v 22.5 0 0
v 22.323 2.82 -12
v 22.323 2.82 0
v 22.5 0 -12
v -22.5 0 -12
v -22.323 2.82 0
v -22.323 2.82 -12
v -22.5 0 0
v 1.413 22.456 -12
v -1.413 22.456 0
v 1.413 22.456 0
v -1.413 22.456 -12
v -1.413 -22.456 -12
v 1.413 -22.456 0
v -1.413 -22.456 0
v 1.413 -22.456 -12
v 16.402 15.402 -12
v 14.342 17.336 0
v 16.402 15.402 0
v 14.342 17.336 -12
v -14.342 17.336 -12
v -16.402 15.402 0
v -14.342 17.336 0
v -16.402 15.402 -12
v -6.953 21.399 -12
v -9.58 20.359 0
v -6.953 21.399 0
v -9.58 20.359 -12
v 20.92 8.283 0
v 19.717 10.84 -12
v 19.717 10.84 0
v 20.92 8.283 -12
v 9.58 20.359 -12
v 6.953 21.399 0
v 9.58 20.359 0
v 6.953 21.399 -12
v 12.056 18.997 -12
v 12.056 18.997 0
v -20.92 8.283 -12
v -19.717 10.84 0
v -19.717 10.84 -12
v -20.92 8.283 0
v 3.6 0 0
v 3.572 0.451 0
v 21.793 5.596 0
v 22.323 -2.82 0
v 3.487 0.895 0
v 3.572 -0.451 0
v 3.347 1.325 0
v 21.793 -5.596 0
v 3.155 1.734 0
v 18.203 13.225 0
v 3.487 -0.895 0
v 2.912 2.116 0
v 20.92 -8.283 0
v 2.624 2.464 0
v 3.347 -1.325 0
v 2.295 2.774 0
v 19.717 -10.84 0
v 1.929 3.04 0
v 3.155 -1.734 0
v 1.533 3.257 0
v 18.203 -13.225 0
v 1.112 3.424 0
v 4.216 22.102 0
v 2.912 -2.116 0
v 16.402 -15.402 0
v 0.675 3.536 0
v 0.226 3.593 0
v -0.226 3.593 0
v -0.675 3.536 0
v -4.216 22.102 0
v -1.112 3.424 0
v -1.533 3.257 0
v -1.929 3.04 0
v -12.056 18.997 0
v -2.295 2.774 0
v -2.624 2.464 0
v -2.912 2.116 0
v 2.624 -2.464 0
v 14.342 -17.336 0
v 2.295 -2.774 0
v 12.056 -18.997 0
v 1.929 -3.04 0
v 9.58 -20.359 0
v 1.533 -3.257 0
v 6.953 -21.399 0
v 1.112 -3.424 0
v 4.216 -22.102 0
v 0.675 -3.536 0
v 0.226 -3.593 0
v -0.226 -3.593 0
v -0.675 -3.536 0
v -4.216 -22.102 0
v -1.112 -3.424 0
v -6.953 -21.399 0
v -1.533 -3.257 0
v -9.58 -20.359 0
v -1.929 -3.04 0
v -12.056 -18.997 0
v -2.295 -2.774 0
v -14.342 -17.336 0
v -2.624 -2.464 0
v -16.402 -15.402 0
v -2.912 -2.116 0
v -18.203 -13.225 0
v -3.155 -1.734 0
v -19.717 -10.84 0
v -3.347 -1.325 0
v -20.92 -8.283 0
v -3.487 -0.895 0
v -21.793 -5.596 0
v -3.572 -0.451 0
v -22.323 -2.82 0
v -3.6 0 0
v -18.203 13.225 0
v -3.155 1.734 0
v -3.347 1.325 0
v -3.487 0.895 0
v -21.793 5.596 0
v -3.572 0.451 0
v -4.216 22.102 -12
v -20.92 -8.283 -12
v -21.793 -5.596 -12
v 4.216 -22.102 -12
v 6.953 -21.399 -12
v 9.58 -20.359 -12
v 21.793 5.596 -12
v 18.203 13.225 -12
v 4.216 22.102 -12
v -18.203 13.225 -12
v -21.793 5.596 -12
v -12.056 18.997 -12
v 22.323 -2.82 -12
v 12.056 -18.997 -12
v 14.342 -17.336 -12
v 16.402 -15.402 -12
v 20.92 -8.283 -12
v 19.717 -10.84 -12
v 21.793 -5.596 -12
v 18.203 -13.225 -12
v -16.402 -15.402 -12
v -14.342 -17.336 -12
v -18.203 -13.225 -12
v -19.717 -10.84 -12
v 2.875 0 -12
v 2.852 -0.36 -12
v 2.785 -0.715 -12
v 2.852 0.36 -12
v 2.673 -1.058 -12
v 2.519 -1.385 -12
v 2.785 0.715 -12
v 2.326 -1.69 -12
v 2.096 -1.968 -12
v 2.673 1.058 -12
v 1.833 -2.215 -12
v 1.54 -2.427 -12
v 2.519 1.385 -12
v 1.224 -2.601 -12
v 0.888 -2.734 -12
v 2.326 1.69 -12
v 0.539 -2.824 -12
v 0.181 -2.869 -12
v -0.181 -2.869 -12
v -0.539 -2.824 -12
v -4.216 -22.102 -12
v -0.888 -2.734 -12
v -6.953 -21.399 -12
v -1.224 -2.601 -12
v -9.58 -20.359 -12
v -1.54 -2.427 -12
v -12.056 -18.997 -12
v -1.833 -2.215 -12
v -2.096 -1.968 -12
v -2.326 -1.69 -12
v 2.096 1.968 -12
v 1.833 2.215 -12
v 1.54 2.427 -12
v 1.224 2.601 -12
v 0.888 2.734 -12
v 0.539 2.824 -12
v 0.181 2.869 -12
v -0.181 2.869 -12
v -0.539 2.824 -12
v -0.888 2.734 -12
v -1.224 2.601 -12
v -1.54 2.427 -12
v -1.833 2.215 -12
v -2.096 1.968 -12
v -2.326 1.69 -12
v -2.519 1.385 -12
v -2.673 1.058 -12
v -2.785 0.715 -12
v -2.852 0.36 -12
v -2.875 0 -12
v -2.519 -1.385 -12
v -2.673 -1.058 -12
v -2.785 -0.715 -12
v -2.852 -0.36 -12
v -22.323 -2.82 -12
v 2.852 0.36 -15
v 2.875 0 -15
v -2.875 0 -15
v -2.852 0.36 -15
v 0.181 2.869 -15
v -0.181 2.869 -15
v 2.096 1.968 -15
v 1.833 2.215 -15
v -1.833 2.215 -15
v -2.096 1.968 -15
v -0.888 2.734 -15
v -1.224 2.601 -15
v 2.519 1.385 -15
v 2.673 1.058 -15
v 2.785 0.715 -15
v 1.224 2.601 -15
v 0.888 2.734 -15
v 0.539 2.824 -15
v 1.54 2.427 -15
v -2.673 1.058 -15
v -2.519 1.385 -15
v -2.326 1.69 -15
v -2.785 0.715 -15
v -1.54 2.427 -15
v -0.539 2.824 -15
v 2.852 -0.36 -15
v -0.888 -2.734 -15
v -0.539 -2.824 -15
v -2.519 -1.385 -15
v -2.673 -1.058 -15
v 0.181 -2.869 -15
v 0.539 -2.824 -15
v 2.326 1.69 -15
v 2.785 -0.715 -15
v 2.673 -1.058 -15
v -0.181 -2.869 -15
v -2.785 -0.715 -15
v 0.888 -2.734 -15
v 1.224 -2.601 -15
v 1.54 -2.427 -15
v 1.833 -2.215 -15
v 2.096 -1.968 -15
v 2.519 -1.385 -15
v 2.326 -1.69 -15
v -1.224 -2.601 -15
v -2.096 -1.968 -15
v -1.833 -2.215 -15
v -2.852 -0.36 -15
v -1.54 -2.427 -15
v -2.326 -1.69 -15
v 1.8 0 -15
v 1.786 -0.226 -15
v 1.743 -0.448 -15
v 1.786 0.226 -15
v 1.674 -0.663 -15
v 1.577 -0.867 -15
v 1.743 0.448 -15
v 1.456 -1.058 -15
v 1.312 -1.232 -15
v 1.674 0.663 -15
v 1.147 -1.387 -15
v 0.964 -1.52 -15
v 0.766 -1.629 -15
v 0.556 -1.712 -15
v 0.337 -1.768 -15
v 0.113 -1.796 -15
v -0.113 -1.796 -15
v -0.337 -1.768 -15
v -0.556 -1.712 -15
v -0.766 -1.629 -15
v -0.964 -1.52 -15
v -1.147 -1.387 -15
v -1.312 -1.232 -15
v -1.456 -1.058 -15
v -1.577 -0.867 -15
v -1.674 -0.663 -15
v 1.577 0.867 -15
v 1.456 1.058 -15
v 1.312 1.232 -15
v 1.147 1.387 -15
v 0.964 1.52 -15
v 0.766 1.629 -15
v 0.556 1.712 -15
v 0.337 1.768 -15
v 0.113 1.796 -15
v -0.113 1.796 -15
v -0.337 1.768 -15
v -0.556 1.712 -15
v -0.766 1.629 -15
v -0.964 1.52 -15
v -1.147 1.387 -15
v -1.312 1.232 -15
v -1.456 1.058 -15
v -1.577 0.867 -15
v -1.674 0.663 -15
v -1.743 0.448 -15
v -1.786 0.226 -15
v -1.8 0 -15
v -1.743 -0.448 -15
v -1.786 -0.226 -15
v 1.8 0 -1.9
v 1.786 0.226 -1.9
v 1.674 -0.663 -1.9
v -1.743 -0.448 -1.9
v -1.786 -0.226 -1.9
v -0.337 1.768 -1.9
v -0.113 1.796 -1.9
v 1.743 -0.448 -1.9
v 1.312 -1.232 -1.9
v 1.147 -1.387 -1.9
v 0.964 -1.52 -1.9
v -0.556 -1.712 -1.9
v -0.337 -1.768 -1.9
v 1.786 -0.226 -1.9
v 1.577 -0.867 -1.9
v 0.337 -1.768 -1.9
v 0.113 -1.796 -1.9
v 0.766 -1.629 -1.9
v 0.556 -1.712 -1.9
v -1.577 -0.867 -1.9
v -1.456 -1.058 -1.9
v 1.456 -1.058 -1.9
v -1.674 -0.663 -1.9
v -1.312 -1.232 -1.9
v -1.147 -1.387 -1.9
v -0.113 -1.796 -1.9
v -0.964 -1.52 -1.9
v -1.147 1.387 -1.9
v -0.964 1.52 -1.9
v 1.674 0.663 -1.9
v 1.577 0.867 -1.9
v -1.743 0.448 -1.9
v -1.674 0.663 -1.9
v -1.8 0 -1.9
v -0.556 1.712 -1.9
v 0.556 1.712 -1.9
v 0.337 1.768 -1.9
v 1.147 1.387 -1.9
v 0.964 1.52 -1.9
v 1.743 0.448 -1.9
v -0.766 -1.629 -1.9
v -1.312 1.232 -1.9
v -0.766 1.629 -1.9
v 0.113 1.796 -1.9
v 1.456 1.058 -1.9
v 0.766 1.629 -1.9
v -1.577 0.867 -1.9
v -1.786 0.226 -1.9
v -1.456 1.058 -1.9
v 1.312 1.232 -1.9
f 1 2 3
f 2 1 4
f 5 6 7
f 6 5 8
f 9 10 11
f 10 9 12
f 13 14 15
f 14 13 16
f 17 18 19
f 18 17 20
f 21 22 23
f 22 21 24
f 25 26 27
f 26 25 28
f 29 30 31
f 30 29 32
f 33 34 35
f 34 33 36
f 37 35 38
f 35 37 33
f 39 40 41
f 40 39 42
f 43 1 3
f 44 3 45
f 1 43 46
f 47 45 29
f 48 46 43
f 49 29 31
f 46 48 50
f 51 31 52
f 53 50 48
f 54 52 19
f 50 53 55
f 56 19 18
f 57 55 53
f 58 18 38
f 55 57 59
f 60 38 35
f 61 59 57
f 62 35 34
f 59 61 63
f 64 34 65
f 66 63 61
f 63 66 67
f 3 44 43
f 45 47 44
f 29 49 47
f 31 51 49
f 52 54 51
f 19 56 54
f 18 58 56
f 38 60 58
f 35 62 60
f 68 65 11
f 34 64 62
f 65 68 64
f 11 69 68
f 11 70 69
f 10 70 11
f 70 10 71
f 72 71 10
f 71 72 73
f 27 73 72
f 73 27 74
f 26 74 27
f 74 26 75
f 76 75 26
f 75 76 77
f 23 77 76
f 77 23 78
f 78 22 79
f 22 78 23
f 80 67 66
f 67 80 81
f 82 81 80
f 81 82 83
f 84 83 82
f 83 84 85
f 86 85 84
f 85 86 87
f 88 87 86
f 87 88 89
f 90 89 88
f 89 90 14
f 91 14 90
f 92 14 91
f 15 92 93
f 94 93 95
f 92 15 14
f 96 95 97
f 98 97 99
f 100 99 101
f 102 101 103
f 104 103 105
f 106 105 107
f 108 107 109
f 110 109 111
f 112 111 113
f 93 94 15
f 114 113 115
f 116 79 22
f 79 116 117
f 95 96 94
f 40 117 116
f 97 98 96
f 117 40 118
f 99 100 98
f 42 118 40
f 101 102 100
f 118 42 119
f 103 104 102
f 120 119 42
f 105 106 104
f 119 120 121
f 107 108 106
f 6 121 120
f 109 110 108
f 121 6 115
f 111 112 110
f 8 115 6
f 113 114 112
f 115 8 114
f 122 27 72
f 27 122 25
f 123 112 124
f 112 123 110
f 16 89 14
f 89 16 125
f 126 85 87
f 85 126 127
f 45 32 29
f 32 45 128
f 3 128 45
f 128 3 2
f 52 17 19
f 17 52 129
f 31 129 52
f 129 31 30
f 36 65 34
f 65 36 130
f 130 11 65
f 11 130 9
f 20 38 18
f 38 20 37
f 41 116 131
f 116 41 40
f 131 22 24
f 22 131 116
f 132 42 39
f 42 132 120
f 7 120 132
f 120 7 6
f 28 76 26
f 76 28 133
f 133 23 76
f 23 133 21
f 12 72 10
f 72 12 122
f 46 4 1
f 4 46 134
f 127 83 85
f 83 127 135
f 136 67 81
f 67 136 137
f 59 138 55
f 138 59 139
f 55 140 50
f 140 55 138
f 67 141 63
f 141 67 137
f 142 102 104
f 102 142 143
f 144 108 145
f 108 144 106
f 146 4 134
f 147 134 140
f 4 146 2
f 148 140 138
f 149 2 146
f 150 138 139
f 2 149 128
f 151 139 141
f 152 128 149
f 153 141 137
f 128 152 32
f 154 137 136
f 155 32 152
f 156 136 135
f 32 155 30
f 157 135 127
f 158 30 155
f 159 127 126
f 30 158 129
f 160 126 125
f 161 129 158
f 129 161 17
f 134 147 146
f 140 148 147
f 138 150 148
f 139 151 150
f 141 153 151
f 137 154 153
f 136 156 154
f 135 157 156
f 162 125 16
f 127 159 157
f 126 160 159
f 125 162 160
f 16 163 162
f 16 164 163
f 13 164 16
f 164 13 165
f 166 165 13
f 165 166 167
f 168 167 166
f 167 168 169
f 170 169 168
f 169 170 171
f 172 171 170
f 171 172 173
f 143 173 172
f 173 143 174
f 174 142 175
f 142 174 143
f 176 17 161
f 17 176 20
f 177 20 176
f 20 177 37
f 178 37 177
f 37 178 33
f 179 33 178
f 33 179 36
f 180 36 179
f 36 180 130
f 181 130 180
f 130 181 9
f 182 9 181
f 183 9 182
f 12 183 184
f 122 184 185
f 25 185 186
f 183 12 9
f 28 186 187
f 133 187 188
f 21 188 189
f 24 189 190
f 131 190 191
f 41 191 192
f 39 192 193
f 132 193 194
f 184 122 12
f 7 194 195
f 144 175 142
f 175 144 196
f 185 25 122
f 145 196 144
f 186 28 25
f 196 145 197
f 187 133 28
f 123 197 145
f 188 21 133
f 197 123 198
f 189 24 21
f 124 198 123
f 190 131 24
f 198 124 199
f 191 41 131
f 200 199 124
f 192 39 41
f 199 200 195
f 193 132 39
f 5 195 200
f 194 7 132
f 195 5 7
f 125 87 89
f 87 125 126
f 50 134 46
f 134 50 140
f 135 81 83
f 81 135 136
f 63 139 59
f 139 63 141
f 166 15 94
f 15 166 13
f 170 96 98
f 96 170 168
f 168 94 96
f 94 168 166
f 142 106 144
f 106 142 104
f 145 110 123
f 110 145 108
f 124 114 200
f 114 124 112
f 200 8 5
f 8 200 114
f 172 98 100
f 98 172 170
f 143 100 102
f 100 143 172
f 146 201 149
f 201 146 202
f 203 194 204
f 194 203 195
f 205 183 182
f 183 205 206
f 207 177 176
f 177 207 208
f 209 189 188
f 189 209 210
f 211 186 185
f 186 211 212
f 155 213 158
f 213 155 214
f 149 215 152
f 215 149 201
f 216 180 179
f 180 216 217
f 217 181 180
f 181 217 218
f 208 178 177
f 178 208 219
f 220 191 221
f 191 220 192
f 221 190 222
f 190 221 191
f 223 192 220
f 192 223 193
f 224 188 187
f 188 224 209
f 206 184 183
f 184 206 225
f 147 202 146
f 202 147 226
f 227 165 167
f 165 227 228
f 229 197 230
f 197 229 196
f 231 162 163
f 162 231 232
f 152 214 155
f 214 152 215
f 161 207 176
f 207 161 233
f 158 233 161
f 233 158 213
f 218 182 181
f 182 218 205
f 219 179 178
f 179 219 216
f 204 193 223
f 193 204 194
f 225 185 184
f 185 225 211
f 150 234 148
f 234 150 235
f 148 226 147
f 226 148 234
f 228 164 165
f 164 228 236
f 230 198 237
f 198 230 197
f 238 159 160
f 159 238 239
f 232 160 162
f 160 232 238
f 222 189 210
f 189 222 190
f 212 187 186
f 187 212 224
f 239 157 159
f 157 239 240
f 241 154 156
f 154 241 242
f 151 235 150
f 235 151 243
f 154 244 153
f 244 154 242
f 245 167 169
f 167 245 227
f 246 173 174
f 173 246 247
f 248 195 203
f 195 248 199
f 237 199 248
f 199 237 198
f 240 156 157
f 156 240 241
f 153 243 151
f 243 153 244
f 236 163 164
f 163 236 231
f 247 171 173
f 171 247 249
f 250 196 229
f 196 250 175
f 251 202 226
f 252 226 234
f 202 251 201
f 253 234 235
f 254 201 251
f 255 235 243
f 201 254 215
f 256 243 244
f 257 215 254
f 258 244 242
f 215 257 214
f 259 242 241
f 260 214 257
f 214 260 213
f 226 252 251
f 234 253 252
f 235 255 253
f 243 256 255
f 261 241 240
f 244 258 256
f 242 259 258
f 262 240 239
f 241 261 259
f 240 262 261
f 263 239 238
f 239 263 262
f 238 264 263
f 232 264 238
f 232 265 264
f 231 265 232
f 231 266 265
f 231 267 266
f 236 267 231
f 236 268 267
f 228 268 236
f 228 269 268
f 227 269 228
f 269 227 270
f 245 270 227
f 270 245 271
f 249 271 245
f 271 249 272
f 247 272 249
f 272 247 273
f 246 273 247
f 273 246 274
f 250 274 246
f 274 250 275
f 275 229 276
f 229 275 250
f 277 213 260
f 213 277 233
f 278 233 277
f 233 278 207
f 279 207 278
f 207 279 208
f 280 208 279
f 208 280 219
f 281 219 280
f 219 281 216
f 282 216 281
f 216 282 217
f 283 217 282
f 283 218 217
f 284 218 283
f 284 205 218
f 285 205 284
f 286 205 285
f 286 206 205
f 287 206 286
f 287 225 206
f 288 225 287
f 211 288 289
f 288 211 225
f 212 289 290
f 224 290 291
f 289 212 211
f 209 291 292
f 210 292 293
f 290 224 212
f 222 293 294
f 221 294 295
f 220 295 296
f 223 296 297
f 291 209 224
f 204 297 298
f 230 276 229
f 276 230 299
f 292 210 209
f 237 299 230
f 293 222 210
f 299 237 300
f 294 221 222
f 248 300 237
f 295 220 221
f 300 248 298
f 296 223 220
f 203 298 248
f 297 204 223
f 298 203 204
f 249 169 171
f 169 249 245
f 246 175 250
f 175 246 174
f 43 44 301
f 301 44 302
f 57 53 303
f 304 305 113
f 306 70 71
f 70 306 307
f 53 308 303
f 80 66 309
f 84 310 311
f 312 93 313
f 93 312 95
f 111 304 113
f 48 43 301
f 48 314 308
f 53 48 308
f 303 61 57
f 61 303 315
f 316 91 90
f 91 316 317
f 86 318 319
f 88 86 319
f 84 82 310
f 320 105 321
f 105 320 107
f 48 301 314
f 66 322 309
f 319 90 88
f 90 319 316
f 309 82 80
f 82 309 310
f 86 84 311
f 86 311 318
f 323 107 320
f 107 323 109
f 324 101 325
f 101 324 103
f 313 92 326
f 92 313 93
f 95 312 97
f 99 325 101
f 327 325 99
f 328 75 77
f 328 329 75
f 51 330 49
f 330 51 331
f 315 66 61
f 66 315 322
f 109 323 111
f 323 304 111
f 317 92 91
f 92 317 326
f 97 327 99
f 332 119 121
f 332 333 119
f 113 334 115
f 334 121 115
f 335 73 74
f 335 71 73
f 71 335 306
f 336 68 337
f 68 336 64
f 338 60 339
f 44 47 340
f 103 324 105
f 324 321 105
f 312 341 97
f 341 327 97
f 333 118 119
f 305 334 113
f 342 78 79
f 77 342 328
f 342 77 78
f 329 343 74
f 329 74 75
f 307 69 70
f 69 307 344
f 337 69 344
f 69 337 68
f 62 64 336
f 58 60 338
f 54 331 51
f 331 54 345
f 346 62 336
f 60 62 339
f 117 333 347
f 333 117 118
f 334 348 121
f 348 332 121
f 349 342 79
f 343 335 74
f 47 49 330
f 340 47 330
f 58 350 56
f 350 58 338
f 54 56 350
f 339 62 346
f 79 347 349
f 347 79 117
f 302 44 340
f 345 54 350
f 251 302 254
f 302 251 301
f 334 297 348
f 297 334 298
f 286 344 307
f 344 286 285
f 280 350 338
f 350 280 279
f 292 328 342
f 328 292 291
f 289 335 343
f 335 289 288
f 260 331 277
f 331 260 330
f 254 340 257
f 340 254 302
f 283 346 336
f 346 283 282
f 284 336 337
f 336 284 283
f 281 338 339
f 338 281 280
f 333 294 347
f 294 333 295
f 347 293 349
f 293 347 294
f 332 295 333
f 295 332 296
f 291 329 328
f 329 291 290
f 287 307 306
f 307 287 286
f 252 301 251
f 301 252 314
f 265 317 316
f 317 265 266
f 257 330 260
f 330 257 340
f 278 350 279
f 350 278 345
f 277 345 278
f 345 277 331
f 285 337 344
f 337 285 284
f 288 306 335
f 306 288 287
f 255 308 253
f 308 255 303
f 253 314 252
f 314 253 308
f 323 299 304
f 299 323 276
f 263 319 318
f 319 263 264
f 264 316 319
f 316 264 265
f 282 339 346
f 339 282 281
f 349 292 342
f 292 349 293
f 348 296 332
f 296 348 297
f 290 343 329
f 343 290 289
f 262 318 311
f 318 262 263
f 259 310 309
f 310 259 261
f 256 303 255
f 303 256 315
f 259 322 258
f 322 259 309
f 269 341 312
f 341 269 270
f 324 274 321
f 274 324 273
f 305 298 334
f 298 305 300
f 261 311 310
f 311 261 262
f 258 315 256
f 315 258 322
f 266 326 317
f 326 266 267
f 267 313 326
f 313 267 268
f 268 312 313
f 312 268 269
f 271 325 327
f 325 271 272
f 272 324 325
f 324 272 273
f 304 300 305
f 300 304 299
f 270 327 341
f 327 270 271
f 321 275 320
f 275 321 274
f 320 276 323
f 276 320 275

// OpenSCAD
$fn = 50;


difference() {
	union() {
		translate(v = [0, 0, -12.0000000000]) {
			cylinder(h = 12, r = 22.5000000000);
		}
		#translate(v = [0, 0, -15.0000000000]) {
			cylinder(h = 15, r = 2.8750000000);
		}
	}
	union() {
		translate(v = [0, 0, 0]) {
			rotate(a = [0, 0, 0]) {
				difference() {
					union() {
						translate(v = [0, 0, -15.0000000000]) {
							cylinder(h = 15, r = 1.5000000000);
						}
						translate(v = [0, 0, -1.9000000000]) {
							cylinder(h = 1.9000000000, r1 = 1.8000000000, r2 = 3.6000000000);
						}
						translate(v = [0, 0, -15.0000000000]) {
							cylinder(h = 15, r = 1.8000000000);
						}
						translate(v = [0, 0, -15.0000000000]) {
							cylinder(h = 15, r = 1.5000000000);
						}
					}
					union();
				}
			}
		}
	}
}
